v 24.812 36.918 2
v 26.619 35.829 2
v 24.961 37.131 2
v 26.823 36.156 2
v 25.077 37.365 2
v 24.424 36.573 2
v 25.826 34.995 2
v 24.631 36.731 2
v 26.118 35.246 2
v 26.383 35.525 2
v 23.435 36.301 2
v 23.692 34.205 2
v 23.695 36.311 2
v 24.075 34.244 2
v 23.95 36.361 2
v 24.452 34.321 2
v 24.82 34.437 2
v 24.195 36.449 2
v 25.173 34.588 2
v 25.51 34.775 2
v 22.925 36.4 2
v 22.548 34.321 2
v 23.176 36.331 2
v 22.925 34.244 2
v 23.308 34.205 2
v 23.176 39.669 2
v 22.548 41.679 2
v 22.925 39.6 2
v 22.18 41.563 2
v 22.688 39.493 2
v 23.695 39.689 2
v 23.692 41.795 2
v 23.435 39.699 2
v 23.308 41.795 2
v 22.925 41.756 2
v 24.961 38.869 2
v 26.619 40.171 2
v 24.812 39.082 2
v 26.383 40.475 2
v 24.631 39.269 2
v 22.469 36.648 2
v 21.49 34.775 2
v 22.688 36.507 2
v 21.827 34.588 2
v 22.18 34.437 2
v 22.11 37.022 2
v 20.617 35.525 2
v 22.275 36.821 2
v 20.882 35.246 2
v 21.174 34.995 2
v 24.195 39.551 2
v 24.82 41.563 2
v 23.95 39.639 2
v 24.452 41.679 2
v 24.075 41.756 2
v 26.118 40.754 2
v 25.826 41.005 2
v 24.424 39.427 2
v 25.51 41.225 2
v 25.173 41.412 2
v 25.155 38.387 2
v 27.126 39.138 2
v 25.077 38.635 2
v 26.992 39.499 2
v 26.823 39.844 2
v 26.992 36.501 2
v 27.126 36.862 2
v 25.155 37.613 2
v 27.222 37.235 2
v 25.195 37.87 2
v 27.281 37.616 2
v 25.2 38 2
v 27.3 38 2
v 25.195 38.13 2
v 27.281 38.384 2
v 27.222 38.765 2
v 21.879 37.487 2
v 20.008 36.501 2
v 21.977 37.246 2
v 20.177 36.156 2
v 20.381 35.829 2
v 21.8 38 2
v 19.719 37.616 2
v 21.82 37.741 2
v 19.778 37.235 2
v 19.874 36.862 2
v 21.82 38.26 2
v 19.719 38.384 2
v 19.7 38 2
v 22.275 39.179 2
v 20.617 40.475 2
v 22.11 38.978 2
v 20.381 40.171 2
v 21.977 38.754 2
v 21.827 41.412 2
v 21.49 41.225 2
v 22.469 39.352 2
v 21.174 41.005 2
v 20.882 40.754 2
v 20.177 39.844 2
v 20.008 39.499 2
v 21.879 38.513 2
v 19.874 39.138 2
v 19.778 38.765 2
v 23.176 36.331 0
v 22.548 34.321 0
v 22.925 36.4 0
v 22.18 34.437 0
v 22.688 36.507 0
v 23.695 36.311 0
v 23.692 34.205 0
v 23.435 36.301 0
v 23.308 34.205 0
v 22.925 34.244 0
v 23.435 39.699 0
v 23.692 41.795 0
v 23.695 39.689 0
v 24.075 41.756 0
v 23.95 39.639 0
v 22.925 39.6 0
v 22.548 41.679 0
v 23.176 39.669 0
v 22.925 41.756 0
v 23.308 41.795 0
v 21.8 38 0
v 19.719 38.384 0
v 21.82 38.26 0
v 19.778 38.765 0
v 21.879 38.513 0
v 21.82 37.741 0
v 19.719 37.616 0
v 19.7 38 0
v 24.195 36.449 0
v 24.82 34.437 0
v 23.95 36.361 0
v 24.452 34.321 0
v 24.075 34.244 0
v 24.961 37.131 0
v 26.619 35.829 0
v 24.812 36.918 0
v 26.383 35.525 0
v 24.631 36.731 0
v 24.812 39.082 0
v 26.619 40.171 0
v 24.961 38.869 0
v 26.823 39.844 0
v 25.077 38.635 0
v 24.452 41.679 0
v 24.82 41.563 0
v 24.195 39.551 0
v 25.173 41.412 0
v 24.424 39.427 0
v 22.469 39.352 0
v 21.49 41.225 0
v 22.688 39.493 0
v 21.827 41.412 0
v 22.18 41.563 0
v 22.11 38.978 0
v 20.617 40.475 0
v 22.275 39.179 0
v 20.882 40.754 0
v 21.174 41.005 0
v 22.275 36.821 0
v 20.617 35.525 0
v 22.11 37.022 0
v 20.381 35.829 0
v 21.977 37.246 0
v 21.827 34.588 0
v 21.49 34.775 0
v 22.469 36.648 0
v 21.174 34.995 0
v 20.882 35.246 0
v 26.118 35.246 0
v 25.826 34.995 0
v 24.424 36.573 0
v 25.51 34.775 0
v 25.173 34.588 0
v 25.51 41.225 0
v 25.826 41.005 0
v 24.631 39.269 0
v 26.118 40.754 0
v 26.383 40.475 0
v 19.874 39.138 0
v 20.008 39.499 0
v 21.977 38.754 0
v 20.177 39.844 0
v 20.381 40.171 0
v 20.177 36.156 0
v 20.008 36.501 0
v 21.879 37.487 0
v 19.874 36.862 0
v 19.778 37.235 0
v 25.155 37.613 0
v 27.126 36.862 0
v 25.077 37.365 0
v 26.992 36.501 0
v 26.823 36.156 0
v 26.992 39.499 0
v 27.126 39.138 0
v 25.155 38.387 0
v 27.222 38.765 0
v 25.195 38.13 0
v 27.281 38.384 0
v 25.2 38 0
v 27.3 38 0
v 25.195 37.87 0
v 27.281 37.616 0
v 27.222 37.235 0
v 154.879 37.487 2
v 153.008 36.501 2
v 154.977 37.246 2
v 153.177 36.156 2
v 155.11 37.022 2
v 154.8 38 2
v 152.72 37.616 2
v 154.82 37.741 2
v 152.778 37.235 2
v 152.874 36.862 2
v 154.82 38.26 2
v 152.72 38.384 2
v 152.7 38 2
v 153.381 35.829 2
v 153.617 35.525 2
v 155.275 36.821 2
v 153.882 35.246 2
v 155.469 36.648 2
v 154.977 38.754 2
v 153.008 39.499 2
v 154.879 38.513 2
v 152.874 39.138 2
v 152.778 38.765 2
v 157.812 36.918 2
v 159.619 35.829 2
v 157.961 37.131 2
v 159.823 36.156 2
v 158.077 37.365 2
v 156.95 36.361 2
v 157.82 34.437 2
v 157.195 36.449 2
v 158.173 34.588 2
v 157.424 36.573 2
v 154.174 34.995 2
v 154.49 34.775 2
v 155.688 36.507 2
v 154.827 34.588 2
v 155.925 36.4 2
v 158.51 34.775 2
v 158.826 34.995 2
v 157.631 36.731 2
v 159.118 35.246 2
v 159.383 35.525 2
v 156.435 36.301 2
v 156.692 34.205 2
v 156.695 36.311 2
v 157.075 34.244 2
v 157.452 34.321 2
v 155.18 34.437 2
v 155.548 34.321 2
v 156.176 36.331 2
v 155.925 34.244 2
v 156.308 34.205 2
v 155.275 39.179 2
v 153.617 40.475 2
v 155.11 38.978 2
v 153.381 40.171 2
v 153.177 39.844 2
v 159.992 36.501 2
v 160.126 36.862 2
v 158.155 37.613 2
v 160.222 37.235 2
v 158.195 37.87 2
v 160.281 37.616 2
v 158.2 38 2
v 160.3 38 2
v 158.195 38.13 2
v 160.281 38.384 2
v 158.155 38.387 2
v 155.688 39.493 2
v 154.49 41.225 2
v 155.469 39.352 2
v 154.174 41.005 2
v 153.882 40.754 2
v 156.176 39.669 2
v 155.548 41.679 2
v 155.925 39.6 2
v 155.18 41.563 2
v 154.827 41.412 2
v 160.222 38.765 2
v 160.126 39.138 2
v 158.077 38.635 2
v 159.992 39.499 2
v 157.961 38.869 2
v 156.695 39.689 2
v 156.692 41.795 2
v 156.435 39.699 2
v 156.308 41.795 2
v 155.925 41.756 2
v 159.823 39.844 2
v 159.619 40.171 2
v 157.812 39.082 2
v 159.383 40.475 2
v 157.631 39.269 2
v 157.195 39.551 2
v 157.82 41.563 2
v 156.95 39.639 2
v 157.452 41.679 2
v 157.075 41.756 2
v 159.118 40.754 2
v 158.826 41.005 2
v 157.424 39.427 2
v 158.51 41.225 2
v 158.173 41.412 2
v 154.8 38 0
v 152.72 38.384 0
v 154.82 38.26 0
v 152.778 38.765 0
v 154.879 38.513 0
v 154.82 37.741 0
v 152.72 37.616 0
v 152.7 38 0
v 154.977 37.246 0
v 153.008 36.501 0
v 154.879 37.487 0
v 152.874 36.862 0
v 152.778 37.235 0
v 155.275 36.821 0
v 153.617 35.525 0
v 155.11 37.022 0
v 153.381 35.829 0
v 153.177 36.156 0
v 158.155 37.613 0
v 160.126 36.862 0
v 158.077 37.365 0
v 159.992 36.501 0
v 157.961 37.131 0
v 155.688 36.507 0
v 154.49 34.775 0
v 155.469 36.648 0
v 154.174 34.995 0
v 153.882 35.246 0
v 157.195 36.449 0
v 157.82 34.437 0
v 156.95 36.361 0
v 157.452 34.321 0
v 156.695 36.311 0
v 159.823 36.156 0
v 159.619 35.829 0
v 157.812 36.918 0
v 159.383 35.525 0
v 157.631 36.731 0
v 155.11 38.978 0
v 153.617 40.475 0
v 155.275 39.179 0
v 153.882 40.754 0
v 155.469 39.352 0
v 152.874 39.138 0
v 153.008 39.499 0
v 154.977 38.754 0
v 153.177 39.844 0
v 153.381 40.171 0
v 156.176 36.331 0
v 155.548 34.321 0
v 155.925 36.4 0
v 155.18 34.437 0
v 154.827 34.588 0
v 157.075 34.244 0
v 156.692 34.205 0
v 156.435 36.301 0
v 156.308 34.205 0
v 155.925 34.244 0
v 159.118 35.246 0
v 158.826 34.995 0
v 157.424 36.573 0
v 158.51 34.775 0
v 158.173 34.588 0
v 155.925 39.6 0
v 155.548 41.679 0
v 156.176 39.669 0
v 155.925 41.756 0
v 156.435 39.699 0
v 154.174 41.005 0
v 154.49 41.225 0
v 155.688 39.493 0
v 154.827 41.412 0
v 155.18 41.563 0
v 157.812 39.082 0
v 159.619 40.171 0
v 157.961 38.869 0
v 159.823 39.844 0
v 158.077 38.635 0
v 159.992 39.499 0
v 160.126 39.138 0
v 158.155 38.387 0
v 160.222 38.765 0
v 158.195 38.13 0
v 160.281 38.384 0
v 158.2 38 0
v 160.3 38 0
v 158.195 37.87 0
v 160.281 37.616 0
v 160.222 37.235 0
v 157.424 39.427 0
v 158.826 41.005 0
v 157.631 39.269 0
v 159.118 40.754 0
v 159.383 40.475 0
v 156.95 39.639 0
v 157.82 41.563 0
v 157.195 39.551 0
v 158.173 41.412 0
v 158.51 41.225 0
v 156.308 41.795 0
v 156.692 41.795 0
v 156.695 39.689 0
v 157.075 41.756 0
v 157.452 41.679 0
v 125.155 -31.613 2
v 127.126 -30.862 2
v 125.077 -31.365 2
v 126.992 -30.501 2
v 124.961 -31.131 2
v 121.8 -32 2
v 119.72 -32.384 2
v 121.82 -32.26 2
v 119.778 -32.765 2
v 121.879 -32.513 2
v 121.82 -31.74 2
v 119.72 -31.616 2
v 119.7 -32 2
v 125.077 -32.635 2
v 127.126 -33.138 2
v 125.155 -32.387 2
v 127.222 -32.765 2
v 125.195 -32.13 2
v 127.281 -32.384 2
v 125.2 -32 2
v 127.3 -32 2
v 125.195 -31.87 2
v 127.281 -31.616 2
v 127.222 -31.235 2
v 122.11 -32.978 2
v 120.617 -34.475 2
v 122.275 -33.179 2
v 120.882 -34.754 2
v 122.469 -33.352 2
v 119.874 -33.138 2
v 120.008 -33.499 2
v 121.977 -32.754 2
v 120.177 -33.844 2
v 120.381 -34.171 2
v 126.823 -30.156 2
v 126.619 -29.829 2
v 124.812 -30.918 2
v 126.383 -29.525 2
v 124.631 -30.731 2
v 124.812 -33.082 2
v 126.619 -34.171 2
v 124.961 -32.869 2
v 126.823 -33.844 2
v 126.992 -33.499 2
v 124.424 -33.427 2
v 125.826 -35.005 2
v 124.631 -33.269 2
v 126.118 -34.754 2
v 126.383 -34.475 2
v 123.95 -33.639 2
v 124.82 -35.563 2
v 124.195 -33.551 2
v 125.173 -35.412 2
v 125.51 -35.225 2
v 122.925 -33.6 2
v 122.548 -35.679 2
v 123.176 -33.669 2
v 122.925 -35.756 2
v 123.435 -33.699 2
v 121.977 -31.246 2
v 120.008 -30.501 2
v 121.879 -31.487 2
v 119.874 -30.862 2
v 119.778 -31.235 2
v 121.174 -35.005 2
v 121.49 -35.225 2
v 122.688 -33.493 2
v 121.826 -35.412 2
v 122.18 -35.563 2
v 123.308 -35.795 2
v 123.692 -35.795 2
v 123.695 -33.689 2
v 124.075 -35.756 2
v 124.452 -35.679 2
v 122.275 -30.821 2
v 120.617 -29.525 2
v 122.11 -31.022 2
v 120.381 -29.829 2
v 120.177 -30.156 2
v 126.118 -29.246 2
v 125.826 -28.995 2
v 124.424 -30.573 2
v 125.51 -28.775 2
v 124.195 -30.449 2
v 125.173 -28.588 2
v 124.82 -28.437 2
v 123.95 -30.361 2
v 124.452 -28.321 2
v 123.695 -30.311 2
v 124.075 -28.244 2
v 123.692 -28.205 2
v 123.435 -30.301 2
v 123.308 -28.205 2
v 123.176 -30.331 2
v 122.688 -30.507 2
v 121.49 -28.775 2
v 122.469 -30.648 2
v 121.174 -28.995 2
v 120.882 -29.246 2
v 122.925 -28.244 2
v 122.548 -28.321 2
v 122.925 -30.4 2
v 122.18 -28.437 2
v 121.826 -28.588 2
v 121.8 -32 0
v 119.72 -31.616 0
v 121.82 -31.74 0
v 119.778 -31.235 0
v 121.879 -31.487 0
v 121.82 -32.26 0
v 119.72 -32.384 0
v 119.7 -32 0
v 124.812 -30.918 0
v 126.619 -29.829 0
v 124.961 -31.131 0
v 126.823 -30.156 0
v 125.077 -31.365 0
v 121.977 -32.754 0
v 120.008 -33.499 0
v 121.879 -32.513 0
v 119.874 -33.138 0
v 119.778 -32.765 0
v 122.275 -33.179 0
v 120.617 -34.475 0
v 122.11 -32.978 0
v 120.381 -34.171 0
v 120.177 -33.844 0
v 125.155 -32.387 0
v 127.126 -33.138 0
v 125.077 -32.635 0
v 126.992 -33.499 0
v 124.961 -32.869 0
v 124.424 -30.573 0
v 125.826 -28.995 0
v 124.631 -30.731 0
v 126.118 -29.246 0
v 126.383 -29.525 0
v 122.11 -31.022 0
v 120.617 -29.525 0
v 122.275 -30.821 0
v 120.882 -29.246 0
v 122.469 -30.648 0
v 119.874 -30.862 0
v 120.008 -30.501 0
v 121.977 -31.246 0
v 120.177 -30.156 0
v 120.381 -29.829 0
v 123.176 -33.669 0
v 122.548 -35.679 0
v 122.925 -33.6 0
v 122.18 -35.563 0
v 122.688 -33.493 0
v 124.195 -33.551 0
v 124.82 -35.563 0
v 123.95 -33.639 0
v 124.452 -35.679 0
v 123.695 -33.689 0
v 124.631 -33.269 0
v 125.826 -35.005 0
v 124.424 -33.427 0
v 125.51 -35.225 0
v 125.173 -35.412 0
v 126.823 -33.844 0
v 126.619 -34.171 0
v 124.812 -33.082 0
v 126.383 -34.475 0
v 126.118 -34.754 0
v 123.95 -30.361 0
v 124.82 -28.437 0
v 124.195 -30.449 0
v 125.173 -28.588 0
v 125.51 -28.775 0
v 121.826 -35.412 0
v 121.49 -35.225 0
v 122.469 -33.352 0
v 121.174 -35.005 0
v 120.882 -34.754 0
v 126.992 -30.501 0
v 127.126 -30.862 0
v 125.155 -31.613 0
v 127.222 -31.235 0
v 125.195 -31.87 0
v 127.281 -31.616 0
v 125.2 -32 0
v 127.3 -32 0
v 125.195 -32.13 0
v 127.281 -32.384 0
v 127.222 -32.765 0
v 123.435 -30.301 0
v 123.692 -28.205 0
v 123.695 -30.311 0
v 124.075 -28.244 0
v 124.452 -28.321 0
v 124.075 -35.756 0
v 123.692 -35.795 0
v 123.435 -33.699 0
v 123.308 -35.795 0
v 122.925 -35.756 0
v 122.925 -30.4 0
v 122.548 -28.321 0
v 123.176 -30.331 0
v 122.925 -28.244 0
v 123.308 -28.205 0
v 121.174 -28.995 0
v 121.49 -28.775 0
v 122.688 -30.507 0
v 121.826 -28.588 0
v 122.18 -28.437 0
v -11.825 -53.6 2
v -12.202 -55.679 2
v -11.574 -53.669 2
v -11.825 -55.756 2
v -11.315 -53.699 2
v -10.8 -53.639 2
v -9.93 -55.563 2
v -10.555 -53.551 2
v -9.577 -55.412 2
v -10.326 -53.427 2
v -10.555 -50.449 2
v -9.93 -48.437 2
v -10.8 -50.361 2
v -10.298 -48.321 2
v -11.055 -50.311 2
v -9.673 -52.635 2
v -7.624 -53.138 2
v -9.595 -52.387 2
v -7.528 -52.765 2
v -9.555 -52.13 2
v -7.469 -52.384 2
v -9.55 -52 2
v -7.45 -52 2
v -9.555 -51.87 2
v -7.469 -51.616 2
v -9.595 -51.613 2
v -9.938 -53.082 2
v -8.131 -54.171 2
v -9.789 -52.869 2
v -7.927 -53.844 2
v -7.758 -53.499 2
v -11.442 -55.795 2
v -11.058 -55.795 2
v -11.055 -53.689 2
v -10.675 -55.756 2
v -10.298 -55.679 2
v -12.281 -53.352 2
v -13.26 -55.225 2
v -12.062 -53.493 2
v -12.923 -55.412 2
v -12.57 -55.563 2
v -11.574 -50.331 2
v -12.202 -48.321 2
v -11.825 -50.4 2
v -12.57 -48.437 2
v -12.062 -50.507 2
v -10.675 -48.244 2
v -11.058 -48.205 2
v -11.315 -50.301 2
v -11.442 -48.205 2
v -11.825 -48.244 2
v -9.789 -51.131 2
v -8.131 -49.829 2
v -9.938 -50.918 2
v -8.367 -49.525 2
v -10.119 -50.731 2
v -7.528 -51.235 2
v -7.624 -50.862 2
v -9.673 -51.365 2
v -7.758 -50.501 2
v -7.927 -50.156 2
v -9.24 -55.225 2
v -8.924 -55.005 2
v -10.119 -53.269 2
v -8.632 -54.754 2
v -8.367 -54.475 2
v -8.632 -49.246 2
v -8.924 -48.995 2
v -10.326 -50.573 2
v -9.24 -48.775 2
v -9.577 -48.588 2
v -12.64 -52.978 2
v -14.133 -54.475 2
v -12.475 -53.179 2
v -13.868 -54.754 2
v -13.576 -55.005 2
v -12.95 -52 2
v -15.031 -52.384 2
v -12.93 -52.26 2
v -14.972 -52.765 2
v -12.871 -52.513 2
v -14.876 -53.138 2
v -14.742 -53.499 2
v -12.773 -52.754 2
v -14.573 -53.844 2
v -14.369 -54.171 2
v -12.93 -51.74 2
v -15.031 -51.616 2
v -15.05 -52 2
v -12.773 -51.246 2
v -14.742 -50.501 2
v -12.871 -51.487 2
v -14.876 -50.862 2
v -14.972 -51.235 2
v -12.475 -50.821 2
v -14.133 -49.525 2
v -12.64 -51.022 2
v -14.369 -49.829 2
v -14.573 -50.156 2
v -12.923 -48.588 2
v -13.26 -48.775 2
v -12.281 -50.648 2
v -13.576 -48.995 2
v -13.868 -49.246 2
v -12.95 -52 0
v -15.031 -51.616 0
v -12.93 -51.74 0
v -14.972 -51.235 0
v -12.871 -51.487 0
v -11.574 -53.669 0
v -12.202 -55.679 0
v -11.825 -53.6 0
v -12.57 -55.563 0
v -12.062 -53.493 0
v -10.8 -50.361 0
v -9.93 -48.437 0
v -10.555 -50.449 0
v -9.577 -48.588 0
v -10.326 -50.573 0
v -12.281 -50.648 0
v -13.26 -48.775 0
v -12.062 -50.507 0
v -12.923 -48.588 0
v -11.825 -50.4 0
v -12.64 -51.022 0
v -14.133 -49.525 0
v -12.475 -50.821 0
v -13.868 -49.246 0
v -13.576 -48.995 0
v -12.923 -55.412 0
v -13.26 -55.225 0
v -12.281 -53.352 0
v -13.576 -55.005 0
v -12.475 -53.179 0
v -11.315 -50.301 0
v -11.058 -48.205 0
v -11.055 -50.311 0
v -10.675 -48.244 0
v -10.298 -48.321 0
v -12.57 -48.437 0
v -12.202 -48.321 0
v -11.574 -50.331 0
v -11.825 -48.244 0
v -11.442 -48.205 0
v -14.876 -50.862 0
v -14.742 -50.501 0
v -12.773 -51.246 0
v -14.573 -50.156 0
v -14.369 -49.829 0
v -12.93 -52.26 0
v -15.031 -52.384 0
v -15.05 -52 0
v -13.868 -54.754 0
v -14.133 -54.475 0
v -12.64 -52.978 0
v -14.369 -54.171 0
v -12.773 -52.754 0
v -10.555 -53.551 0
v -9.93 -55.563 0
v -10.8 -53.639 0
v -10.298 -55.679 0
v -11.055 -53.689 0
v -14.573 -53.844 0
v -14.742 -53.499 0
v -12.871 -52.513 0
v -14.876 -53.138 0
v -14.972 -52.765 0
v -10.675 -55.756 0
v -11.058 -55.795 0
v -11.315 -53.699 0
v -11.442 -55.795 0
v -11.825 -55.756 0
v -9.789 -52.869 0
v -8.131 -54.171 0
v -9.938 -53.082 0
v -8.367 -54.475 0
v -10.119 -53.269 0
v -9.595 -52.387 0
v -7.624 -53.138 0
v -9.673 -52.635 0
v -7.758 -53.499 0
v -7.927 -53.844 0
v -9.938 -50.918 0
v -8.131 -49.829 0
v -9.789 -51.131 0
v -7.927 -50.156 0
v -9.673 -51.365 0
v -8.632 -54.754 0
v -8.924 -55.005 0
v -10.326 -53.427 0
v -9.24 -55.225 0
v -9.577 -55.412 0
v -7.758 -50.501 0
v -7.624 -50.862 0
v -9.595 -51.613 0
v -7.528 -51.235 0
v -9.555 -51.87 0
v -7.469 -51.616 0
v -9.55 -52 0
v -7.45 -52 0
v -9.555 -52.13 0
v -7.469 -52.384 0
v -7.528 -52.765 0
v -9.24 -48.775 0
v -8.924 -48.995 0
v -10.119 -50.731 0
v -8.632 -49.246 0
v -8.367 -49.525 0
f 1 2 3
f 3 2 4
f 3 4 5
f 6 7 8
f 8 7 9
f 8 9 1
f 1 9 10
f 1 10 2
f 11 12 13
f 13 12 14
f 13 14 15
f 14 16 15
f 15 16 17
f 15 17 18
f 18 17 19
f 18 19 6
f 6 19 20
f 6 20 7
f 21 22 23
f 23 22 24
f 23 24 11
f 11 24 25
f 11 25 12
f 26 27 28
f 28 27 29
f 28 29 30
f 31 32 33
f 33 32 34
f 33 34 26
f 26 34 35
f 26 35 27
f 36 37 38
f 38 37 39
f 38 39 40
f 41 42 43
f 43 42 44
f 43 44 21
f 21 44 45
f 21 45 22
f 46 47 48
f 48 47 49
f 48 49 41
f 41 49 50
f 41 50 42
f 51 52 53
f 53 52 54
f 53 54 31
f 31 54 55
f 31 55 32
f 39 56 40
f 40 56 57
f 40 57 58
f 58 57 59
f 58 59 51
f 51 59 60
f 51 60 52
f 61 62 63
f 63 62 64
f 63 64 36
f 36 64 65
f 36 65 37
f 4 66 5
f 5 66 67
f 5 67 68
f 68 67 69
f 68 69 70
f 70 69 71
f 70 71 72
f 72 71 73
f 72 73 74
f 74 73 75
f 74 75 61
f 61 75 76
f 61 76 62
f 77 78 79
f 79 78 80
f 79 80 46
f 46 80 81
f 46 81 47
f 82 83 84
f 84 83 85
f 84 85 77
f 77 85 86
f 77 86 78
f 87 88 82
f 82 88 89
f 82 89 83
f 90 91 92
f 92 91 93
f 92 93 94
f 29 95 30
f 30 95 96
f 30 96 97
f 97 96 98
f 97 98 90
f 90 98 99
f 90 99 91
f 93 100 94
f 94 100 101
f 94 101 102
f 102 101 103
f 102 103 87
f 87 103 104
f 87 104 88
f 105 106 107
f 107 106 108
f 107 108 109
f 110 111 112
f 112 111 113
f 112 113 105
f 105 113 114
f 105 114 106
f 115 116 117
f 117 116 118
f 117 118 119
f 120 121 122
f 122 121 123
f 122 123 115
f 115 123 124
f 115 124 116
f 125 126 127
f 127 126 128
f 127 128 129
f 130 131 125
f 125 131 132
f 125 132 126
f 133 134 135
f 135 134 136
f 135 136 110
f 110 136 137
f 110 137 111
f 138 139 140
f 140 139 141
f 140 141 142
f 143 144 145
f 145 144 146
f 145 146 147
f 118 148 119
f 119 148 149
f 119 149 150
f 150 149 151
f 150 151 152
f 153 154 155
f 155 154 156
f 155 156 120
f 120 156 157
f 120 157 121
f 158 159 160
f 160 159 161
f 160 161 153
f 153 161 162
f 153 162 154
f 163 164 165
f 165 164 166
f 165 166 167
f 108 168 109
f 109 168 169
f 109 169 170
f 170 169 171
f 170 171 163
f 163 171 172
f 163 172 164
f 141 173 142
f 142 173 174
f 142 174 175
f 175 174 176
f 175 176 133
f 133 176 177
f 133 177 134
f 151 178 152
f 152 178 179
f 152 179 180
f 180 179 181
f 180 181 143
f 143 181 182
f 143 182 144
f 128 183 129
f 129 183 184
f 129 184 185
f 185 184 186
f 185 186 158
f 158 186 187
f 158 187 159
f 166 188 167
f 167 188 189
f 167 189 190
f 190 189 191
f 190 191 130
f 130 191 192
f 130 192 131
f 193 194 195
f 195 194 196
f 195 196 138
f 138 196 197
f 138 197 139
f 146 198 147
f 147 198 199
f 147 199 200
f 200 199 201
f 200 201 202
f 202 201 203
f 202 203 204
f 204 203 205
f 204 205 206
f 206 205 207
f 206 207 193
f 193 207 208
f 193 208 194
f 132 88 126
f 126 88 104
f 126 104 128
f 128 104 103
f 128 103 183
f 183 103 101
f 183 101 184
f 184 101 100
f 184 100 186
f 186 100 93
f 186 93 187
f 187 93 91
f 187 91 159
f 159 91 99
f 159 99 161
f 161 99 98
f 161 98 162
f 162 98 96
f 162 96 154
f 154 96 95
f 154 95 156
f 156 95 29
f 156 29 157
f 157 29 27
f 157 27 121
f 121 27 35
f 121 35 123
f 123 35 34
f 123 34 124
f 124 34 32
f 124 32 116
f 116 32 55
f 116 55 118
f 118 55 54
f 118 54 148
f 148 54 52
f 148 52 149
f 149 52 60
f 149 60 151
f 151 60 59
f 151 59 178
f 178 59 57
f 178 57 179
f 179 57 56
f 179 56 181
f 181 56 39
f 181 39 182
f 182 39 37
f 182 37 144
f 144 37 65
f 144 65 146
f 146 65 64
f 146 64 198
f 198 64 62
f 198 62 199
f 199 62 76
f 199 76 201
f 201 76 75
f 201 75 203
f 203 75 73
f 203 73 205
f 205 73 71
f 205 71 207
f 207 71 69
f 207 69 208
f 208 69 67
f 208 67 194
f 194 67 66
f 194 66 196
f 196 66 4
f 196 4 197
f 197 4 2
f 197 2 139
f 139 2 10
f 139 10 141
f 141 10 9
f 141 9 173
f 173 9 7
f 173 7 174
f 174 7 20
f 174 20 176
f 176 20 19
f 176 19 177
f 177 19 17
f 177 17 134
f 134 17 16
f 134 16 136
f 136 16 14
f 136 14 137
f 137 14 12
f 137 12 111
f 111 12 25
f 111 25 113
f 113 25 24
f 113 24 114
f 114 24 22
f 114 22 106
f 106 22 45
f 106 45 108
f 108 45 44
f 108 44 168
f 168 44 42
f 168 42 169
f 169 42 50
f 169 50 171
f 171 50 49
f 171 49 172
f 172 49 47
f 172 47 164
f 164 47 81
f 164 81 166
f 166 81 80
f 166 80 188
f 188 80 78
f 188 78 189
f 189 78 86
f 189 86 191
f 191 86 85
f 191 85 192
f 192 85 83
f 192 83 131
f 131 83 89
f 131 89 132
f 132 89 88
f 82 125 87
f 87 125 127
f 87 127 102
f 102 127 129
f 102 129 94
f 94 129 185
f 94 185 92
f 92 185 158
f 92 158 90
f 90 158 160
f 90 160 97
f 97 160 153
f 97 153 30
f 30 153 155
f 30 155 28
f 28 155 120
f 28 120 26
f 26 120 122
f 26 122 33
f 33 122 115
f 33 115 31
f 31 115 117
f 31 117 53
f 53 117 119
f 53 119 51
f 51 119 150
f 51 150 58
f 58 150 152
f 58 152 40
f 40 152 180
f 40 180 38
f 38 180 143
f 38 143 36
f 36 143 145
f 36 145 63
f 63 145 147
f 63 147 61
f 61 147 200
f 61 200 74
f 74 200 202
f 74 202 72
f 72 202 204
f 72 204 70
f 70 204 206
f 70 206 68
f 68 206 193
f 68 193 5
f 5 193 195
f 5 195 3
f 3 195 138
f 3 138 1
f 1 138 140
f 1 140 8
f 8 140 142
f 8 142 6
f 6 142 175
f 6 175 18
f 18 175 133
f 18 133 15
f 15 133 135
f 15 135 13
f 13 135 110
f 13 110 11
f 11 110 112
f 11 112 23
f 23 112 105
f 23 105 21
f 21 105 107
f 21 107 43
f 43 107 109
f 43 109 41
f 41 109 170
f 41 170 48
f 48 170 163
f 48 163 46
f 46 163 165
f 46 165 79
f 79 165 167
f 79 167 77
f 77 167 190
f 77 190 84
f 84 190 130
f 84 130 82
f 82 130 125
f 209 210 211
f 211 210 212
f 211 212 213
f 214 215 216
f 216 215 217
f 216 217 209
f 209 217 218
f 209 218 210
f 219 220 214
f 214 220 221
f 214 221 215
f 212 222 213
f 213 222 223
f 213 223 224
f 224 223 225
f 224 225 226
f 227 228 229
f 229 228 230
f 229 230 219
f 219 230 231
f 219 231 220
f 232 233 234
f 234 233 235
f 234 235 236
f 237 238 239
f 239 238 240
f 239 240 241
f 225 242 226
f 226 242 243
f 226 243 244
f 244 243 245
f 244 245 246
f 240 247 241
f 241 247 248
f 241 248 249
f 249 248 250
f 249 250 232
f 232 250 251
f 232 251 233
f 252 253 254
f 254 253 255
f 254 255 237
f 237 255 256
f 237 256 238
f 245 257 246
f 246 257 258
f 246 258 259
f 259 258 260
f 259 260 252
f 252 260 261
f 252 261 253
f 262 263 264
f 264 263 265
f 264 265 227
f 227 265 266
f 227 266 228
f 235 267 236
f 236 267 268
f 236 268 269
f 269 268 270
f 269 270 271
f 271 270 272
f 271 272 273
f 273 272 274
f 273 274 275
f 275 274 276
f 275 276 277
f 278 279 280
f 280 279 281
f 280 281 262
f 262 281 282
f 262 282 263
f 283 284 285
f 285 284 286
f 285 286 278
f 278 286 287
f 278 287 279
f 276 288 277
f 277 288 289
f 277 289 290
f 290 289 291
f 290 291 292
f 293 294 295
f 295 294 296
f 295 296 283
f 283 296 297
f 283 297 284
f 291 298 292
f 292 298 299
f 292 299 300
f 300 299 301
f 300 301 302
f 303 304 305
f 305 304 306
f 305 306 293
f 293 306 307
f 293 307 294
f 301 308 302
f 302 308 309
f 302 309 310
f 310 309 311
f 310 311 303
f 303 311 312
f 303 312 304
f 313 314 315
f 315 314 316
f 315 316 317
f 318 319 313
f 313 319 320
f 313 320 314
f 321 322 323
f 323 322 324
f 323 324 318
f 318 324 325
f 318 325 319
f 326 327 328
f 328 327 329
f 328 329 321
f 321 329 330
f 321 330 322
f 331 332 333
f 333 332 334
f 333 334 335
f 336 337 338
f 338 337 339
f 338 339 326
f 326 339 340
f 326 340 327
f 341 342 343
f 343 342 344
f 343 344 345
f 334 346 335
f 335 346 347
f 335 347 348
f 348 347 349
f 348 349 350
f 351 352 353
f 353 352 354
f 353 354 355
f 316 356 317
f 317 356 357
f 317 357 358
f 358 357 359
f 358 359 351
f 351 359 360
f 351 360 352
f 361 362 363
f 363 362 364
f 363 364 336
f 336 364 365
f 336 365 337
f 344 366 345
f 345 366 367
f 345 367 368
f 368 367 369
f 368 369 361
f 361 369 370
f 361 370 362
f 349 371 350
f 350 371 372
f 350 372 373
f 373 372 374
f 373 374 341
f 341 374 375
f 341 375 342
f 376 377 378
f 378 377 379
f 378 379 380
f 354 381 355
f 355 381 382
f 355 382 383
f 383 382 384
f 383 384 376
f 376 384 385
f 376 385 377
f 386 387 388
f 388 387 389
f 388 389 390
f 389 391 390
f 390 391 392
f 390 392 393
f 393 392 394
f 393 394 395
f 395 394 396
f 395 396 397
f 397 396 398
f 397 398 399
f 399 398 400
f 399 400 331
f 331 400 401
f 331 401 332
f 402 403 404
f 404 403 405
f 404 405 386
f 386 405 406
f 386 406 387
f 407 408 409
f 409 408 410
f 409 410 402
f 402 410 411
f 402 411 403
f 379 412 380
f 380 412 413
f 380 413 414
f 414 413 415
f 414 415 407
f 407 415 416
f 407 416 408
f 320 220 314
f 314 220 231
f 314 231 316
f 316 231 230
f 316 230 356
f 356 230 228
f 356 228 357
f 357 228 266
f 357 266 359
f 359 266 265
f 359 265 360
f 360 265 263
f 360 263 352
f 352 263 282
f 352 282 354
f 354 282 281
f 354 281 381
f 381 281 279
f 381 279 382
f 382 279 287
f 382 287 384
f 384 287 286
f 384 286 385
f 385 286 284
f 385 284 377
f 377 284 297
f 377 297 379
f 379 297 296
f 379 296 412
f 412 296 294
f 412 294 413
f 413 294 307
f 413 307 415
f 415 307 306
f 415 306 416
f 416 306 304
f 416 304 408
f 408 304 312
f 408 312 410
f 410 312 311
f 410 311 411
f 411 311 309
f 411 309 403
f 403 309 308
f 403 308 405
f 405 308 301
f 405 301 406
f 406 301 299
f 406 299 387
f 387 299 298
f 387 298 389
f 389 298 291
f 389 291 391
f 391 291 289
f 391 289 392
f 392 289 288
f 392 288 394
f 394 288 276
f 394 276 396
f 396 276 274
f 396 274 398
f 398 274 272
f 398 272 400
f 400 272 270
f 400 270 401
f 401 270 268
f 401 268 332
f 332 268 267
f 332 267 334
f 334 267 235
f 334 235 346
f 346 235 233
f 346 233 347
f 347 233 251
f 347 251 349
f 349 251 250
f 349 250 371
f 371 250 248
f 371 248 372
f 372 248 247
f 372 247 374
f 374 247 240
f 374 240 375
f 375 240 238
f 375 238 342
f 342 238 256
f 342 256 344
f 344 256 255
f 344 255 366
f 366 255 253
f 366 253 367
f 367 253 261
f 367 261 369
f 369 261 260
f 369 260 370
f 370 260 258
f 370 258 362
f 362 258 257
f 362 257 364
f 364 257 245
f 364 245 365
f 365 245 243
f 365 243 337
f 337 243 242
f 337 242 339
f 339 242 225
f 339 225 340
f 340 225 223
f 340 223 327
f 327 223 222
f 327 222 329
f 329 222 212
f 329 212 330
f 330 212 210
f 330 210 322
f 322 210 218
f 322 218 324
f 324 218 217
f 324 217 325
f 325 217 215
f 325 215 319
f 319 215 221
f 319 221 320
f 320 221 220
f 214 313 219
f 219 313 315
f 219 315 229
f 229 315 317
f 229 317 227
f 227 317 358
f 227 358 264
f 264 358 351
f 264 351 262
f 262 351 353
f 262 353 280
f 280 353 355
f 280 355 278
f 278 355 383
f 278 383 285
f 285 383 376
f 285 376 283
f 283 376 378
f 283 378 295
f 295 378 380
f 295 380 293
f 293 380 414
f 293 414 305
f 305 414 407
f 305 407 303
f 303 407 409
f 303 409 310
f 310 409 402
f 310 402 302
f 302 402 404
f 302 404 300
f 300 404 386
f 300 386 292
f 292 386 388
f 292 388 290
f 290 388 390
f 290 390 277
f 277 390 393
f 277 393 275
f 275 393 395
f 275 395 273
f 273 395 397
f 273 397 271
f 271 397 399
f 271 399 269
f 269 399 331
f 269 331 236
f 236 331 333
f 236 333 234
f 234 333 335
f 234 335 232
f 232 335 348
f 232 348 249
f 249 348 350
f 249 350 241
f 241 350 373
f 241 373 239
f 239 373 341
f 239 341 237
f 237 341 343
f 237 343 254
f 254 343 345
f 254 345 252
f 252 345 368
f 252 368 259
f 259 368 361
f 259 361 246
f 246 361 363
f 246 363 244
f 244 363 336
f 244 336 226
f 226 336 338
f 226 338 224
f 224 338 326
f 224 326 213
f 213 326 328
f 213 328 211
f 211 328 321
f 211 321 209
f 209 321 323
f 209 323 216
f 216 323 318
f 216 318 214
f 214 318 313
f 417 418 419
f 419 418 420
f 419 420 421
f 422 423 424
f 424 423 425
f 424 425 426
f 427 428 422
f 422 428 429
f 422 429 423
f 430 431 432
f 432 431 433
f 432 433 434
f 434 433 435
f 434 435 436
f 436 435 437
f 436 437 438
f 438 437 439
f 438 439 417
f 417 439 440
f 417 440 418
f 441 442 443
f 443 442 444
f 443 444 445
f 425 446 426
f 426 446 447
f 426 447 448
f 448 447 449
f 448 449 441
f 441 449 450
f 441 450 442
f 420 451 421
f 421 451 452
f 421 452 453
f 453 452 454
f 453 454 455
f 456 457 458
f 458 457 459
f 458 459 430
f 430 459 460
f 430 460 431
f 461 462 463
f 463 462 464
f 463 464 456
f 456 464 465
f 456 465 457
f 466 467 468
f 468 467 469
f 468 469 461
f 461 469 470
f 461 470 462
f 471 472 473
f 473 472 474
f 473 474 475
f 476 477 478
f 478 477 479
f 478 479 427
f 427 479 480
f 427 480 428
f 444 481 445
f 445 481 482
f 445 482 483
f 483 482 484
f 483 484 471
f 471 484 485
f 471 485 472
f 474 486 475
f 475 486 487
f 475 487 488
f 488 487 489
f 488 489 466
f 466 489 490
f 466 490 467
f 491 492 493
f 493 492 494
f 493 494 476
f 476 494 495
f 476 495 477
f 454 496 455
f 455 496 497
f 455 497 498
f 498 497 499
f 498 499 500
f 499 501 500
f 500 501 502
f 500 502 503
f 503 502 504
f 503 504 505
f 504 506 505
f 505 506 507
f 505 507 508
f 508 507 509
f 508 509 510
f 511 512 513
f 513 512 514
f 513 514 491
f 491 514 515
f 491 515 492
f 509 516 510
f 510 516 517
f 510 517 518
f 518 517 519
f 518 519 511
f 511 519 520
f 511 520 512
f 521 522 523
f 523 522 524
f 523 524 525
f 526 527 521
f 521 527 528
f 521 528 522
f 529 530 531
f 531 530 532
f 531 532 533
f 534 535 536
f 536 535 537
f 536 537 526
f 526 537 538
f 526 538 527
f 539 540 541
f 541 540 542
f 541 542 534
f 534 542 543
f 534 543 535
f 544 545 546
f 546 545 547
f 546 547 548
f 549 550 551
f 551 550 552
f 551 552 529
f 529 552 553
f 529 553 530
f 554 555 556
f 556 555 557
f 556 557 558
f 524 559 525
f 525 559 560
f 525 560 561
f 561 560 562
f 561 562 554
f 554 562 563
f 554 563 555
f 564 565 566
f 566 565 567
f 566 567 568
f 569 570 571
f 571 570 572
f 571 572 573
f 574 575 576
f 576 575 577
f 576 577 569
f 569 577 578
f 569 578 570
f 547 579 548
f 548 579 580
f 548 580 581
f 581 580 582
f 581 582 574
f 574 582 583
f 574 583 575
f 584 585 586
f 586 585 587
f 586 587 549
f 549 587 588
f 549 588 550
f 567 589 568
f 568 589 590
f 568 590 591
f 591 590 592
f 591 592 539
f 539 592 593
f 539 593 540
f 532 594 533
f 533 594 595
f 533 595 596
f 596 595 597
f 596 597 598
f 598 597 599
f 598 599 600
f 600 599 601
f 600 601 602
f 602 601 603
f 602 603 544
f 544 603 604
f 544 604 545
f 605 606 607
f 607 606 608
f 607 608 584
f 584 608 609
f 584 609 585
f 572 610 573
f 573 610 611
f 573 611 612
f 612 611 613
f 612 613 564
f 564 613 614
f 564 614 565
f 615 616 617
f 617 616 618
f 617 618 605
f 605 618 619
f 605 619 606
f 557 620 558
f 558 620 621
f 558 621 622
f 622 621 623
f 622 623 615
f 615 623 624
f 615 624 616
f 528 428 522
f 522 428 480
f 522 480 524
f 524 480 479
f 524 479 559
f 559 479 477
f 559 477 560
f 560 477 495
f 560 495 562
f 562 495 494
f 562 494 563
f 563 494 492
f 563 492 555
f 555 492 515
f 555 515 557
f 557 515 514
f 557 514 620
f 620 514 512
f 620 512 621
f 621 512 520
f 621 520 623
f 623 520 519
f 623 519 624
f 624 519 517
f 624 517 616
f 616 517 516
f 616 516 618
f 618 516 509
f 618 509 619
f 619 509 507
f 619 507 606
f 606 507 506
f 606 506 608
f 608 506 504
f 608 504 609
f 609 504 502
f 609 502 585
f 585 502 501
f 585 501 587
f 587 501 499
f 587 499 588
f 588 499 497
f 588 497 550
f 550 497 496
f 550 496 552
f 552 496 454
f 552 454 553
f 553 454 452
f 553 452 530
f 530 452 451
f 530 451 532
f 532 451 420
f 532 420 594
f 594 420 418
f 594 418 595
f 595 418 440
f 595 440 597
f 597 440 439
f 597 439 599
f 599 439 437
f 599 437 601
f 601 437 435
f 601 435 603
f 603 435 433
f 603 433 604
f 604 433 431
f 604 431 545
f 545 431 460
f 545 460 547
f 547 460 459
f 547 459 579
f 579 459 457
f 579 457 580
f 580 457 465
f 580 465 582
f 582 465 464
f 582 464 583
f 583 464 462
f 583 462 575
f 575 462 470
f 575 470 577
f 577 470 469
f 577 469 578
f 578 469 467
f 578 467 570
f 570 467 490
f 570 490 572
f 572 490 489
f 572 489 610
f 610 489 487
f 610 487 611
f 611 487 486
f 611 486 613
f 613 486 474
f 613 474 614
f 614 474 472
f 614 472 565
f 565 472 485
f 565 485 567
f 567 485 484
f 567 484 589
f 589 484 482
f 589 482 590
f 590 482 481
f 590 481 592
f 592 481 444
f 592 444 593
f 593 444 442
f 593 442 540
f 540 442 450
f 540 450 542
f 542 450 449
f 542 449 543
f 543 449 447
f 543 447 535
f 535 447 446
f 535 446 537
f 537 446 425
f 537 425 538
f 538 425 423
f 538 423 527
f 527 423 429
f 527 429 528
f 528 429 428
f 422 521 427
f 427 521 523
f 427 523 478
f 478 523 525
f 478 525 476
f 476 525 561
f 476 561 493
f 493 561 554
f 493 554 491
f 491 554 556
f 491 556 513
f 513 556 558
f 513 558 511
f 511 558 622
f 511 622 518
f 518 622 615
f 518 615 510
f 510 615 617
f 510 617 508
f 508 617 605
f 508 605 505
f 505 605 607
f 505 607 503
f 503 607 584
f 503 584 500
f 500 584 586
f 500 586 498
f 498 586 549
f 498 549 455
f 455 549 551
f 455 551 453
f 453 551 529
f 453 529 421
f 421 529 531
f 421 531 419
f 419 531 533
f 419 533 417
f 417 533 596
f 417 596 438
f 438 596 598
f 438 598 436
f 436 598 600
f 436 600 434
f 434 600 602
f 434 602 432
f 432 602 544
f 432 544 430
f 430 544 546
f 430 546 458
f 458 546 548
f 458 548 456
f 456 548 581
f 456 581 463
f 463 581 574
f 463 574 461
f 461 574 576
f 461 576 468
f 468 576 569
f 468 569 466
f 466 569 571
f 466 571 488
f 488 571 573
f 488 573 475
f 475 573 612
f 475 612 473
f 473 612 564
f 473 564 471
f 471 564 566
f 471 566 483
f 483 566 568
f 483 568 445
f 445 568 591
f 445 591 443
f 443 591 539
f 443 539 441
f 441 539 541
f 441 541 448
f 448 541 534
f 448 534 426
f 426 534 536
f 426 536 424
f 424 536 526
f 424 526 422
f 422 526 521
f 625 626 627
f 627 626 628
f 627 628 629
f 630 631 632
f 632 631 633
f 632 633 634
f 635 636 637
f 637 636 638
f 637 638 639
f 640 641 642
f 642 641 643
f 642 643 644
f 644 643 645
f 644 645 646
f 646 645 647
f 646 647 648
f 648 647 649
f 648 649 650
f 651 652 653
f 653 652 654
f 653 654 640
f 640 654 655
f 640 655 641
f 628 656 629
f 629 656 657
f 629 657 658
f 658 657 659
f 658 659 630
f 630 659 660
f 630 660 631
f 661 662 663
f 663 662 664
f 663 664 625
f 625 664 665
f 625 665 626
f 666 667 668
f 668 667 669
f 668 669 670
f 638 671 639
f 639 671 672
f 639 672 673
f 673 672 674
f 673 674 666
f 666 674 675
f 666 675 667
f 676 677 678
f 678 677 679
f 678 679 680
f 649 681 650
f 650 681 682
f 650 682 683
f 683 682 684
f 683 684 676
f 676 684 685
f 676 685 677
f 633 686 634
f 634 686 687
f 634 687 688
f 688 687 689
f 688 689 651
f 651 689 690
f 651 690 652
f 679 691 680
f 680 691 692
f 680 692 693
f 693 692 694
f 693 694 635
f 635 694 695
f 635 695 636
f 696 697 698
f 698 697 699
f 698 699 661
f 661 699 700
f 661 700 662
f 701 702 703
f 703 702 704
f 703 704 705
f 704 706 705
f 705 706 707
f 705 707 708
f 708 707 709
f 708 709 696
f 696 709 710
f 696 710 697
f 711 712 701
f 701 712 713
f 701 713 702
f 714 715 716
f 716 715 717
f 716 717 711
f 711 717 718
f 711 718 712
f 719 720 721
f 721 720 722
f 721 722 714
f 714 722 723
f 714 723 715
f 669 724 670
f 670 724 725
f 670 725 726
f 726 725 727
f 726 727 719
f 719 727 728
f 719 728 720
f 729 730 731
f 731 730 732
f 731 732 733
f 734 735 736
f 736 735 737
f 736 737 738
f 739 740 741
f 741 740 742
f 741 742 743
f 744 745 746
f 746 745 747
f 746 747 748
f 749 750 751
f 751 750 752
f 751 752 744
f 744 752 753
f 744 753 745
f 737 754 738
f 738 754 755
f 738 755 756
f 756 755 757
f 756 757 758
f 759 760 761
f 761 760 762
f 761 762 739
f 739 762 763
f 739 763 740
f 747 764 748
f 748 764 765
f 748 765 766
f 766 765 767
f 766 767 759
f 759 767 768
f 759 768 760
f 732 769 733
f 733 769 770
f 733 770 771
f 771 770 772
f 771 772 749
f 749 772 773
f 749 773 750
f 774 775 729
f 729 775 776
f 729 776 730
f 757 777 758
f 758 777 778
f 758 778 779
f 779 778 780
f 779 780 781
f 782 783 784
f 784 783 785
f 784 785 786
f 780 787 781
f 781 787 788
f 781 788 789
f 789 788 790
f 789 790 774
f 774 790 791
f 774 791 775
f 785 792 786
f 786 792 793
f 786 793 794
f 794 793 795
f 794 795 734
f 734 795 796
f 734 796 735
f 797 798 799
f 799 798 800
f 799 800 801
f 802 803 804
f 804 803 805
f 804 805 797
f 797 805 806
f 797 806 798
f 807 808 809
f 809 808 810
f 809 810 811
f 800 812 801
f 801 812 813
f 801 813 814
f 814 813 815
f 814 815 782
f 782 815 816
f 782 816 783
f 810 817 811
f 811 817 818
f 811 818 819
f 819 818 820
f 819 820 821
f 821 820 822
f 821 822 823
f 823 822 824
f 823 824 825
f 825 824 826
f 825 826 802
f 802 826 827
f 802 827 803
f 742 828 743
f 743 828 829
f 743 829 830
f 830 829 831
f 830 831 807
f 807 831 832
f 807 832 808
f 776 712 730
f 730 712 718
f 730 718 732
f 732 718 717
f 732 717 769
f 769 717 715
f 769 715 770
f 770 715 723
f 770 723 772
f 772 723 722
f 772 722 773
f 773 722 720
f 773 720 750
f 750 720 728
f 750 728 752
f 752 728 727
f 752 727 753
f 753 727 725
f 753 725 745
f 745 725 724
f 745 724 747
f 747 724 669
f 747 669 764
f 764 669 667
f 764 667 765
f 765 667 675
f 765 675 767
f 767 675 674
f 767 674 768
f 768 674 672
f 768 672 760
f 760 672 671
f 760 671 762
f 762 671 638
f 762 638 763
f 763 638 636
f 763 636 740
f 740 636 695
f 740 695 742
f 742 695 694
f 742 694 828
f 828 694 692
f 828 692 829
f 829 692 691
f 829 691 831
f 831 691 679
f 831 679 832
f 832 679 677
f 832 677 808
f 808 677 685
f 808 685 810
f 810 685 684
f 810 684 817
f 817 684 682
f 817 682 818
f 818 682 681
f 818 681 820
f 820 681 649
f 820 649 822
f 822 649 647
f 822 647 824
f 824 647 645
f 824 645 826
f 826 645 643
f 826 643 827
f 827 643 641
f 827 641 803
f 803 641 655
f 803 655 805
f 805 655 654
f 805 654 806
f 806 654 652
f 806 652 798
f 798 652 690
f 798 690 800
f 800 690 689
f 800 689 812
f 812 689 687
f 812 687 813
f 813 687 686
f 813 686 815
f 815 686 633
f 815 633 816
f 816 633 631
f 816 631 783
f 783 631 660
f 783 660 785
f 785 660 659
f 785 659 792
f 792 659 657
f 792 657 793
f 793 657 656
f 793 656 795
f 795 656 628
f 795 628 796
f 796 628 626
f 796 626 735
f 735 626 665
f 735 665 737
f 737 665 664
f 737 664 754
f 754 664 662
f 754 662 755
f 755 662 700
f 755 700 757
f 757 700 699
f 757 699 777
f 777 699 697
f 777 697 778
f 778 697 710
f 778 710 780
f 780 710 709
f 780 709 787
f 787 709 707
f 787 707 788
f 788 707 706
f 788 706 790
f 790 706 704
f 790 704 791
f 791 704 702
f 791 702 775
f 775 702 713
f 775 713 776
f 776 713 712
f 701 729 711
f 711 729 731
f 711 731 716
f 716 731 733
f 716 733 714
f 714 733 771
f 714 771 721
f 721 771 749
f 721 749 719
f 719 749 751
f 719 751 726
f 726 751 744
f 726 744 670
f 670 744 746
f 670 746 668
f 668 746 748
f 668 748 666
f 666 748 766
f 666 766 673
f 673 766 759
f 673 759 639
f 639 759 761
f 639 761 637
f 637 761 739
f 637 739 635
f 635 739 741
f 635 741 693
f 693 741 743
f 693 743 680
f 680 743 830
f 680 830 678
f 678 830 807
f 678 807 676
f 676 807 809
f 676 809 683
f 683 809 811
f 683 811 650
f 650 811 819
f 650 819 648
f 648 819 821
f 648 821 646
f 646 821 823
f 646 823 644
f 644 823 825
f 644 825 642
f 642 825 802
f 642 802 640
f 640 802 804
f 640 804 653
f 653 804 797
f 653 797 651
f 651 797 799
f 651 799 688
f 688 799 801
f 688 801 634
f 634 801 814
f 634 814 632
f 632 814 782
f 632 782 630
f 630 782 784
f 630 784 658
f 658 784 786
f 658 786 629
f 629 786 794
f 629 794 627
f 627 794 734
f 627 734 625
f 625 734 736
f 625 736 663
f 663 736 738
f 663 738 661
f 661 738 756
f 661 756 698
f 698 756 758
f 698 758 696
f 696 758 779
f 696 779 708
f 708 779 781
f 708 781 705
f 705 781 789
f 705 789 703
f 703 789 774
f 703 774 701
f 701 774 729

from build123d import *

# Parameters (mm, degrees)
SKETCH1_R             = 3.8
SKETCH1_R_2           = 1.7
BOSS_EXTRUDE1_DEPTH   = 2
BOSS_EXTRUDE1_2_DEPTH = 2
BOSS_EXTRUDE1_3_DEPTH = 2
BOSS_EXTRUDE1_4_DEPTH = 2


with BuildPart() as part:
    # Sketch1 → Boss-Extrude1 (new body)
    with BuildSketch(Plane.XY):
        with Locations((23.5, 38)):
            Circle(SKETCH1_R)
        with Locations((23.5, 38)):
            Circle(SKETCH1_R_2, mode=Mode.SUBTRACT)
    extrude(amount=BOSS_EXTRUDE1_DEPTH)


with BuildPart() as body_2:
    # Sketch1 → Boss-Extrude1 2 (new body)
    with BuildSketch(Plane.XY):
        with Locations((156.5, 38)):
            Circle(SKETCH1_R)
        with Locations((156.5, 38)):
            Circle(SKETCH1_R_2, mode=Mode.SUBTRACT)
    extrude(amount=BOSS_EXTRUDE1_2_DEPTH)


with BuildPart() as body_3:
    # Sketch1 → Boss-Extrude1 3 (new body)
    with BuildSketch(Plane.XY):
        with Locations((123.5, -32)):
            Circle(SKETCH1_R)
        with Locations((123.5, -32)):
            Circle(SKETCH1_R_2, mode=Mode.SUBTRACT)
    extrude(amount=BOSS_EXTRUDE1_3_DEPTH)


with BuildPart() as body_4:
    # Sketch1 → Boss-Extrude1 4 (new body)
    with BuildSketch(Plane.XY):
        with Locations((-11.25, -52)):
            Circle(SKETCH1_R)
        with Locations((-11.25, -52)):
            Circle(SKETCH1_R_2, mode=Mode.SUBTRACT)
    extrude(amount=BOSS_EXTRUDE1_4_DEPTH)


solid = Compound([part.part, body_2.part, body_3.part, body_4.part])
